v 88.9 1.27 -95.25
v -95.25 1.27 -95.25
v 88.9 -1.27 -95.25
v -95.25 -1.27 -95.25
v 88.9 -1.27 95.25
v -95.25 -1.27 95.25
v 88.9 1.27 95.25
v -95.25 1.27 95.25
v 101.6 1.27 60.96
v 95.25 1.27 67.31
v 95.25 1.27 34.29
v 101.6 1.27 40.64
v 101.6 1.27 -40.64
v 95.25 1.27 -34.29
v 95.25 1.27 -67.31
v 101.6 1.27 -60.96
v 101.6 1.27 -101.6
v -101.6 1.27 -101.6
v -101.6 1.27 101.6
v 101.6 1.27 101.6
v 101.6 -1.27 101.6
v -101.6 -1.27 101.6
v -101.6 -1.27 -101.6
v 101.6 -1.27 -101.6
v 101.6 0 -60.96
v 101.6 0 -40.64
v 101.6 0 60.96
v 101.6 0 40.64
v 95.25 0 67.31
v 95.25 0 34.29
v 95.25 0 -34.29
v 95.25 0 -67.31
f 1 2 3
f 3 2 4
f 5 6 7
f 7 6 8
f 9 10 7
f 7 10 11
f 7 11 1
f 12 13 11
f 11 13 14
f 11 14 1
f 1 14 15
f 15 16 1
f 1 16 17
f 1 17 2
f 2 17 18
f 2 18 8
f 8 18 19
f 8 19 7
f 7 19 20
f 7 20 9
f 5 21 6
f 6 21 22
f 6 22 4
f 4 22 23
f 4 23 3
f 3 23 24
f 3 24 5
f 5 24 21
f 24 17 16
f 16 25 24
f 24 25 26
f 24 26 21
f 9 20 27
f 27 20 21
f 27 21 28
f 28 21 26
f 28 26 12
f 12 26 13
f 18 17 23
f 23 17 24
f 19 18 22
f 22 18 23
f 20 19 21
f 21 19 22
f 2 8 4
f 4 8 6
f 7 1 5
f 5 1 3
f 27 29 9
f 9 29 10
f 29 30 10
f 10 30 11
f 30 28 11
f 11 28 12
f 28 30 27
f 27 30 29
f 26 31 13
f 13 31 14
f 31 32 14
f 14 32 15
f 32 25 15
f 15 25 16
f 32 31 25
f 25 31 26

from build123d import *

# Parameters (mm, degrees)
SKETCH1_W           = 203.2
SKETCH1_H           = 203.2
SKETCH1_W_2         = 190.5
SKETCH1_H_2         = 190.5
BOSS_EXTRUDE1_DEPTH = 1.27
SKETCH2_W           = 6.35
SKETCH2_H           = 190.5
BOSS_EXTRUDE2_DEPTH = 1.27
CUT_EXTRUDE1_DEPTH  = 1.27


with BuildPart() as part:
    # Sketch1 → Boss-Extrude1 (new body, symmetric)
    with BuildSketch(Plane(origin=(0, 0, 0), x_dir=(1, 0, 0), z_dir=(0, 1, 0))):
        Rectangle(SKETCH1_W, SKETCH1_H)
        Rectangle(SKETCH1_W_2, SKETCH1_H_2, mode=Mode.SUBTRACT)
    extrude(amount=BOSS_EXTRUDE1_DEPTH, both=True)

    # Sketch2 → Boss-Extrude2 (add, symmetric)
    with BuildSketch(Plane(origin=(0, 0, 0), x_dir=(1, 0, 0), z_dir=(0, 1, 0))):
        with Locations((92.075, 0)):
            Rectangle(SKETCH2_W, SKETCH2_H)
    extrude(amount=BOSS_EXTRUDE2_DEPTH, both=True)

    # Sketch3 → Cut-Extrude1 (cut)
    with BuildSketch(Plane(origin=(0, 1.27, 0), x_dir=(1, 0, 0), z_dir=(0, 1, 0))):
        Polygon((101.6, 40.64), (95.25, 34.29), (95.25, 67.31), (101.6, 60.96), align=None)
        Polygon((101.6, -60.96), (101.6, -40.64), (95.25, -34.29), (95.25, -67.31), align=None)
    extrude(amount=-CUT_EXTRUDE1_DEPTH, mode=Mode.SUBTRACT)


solid = part.part
